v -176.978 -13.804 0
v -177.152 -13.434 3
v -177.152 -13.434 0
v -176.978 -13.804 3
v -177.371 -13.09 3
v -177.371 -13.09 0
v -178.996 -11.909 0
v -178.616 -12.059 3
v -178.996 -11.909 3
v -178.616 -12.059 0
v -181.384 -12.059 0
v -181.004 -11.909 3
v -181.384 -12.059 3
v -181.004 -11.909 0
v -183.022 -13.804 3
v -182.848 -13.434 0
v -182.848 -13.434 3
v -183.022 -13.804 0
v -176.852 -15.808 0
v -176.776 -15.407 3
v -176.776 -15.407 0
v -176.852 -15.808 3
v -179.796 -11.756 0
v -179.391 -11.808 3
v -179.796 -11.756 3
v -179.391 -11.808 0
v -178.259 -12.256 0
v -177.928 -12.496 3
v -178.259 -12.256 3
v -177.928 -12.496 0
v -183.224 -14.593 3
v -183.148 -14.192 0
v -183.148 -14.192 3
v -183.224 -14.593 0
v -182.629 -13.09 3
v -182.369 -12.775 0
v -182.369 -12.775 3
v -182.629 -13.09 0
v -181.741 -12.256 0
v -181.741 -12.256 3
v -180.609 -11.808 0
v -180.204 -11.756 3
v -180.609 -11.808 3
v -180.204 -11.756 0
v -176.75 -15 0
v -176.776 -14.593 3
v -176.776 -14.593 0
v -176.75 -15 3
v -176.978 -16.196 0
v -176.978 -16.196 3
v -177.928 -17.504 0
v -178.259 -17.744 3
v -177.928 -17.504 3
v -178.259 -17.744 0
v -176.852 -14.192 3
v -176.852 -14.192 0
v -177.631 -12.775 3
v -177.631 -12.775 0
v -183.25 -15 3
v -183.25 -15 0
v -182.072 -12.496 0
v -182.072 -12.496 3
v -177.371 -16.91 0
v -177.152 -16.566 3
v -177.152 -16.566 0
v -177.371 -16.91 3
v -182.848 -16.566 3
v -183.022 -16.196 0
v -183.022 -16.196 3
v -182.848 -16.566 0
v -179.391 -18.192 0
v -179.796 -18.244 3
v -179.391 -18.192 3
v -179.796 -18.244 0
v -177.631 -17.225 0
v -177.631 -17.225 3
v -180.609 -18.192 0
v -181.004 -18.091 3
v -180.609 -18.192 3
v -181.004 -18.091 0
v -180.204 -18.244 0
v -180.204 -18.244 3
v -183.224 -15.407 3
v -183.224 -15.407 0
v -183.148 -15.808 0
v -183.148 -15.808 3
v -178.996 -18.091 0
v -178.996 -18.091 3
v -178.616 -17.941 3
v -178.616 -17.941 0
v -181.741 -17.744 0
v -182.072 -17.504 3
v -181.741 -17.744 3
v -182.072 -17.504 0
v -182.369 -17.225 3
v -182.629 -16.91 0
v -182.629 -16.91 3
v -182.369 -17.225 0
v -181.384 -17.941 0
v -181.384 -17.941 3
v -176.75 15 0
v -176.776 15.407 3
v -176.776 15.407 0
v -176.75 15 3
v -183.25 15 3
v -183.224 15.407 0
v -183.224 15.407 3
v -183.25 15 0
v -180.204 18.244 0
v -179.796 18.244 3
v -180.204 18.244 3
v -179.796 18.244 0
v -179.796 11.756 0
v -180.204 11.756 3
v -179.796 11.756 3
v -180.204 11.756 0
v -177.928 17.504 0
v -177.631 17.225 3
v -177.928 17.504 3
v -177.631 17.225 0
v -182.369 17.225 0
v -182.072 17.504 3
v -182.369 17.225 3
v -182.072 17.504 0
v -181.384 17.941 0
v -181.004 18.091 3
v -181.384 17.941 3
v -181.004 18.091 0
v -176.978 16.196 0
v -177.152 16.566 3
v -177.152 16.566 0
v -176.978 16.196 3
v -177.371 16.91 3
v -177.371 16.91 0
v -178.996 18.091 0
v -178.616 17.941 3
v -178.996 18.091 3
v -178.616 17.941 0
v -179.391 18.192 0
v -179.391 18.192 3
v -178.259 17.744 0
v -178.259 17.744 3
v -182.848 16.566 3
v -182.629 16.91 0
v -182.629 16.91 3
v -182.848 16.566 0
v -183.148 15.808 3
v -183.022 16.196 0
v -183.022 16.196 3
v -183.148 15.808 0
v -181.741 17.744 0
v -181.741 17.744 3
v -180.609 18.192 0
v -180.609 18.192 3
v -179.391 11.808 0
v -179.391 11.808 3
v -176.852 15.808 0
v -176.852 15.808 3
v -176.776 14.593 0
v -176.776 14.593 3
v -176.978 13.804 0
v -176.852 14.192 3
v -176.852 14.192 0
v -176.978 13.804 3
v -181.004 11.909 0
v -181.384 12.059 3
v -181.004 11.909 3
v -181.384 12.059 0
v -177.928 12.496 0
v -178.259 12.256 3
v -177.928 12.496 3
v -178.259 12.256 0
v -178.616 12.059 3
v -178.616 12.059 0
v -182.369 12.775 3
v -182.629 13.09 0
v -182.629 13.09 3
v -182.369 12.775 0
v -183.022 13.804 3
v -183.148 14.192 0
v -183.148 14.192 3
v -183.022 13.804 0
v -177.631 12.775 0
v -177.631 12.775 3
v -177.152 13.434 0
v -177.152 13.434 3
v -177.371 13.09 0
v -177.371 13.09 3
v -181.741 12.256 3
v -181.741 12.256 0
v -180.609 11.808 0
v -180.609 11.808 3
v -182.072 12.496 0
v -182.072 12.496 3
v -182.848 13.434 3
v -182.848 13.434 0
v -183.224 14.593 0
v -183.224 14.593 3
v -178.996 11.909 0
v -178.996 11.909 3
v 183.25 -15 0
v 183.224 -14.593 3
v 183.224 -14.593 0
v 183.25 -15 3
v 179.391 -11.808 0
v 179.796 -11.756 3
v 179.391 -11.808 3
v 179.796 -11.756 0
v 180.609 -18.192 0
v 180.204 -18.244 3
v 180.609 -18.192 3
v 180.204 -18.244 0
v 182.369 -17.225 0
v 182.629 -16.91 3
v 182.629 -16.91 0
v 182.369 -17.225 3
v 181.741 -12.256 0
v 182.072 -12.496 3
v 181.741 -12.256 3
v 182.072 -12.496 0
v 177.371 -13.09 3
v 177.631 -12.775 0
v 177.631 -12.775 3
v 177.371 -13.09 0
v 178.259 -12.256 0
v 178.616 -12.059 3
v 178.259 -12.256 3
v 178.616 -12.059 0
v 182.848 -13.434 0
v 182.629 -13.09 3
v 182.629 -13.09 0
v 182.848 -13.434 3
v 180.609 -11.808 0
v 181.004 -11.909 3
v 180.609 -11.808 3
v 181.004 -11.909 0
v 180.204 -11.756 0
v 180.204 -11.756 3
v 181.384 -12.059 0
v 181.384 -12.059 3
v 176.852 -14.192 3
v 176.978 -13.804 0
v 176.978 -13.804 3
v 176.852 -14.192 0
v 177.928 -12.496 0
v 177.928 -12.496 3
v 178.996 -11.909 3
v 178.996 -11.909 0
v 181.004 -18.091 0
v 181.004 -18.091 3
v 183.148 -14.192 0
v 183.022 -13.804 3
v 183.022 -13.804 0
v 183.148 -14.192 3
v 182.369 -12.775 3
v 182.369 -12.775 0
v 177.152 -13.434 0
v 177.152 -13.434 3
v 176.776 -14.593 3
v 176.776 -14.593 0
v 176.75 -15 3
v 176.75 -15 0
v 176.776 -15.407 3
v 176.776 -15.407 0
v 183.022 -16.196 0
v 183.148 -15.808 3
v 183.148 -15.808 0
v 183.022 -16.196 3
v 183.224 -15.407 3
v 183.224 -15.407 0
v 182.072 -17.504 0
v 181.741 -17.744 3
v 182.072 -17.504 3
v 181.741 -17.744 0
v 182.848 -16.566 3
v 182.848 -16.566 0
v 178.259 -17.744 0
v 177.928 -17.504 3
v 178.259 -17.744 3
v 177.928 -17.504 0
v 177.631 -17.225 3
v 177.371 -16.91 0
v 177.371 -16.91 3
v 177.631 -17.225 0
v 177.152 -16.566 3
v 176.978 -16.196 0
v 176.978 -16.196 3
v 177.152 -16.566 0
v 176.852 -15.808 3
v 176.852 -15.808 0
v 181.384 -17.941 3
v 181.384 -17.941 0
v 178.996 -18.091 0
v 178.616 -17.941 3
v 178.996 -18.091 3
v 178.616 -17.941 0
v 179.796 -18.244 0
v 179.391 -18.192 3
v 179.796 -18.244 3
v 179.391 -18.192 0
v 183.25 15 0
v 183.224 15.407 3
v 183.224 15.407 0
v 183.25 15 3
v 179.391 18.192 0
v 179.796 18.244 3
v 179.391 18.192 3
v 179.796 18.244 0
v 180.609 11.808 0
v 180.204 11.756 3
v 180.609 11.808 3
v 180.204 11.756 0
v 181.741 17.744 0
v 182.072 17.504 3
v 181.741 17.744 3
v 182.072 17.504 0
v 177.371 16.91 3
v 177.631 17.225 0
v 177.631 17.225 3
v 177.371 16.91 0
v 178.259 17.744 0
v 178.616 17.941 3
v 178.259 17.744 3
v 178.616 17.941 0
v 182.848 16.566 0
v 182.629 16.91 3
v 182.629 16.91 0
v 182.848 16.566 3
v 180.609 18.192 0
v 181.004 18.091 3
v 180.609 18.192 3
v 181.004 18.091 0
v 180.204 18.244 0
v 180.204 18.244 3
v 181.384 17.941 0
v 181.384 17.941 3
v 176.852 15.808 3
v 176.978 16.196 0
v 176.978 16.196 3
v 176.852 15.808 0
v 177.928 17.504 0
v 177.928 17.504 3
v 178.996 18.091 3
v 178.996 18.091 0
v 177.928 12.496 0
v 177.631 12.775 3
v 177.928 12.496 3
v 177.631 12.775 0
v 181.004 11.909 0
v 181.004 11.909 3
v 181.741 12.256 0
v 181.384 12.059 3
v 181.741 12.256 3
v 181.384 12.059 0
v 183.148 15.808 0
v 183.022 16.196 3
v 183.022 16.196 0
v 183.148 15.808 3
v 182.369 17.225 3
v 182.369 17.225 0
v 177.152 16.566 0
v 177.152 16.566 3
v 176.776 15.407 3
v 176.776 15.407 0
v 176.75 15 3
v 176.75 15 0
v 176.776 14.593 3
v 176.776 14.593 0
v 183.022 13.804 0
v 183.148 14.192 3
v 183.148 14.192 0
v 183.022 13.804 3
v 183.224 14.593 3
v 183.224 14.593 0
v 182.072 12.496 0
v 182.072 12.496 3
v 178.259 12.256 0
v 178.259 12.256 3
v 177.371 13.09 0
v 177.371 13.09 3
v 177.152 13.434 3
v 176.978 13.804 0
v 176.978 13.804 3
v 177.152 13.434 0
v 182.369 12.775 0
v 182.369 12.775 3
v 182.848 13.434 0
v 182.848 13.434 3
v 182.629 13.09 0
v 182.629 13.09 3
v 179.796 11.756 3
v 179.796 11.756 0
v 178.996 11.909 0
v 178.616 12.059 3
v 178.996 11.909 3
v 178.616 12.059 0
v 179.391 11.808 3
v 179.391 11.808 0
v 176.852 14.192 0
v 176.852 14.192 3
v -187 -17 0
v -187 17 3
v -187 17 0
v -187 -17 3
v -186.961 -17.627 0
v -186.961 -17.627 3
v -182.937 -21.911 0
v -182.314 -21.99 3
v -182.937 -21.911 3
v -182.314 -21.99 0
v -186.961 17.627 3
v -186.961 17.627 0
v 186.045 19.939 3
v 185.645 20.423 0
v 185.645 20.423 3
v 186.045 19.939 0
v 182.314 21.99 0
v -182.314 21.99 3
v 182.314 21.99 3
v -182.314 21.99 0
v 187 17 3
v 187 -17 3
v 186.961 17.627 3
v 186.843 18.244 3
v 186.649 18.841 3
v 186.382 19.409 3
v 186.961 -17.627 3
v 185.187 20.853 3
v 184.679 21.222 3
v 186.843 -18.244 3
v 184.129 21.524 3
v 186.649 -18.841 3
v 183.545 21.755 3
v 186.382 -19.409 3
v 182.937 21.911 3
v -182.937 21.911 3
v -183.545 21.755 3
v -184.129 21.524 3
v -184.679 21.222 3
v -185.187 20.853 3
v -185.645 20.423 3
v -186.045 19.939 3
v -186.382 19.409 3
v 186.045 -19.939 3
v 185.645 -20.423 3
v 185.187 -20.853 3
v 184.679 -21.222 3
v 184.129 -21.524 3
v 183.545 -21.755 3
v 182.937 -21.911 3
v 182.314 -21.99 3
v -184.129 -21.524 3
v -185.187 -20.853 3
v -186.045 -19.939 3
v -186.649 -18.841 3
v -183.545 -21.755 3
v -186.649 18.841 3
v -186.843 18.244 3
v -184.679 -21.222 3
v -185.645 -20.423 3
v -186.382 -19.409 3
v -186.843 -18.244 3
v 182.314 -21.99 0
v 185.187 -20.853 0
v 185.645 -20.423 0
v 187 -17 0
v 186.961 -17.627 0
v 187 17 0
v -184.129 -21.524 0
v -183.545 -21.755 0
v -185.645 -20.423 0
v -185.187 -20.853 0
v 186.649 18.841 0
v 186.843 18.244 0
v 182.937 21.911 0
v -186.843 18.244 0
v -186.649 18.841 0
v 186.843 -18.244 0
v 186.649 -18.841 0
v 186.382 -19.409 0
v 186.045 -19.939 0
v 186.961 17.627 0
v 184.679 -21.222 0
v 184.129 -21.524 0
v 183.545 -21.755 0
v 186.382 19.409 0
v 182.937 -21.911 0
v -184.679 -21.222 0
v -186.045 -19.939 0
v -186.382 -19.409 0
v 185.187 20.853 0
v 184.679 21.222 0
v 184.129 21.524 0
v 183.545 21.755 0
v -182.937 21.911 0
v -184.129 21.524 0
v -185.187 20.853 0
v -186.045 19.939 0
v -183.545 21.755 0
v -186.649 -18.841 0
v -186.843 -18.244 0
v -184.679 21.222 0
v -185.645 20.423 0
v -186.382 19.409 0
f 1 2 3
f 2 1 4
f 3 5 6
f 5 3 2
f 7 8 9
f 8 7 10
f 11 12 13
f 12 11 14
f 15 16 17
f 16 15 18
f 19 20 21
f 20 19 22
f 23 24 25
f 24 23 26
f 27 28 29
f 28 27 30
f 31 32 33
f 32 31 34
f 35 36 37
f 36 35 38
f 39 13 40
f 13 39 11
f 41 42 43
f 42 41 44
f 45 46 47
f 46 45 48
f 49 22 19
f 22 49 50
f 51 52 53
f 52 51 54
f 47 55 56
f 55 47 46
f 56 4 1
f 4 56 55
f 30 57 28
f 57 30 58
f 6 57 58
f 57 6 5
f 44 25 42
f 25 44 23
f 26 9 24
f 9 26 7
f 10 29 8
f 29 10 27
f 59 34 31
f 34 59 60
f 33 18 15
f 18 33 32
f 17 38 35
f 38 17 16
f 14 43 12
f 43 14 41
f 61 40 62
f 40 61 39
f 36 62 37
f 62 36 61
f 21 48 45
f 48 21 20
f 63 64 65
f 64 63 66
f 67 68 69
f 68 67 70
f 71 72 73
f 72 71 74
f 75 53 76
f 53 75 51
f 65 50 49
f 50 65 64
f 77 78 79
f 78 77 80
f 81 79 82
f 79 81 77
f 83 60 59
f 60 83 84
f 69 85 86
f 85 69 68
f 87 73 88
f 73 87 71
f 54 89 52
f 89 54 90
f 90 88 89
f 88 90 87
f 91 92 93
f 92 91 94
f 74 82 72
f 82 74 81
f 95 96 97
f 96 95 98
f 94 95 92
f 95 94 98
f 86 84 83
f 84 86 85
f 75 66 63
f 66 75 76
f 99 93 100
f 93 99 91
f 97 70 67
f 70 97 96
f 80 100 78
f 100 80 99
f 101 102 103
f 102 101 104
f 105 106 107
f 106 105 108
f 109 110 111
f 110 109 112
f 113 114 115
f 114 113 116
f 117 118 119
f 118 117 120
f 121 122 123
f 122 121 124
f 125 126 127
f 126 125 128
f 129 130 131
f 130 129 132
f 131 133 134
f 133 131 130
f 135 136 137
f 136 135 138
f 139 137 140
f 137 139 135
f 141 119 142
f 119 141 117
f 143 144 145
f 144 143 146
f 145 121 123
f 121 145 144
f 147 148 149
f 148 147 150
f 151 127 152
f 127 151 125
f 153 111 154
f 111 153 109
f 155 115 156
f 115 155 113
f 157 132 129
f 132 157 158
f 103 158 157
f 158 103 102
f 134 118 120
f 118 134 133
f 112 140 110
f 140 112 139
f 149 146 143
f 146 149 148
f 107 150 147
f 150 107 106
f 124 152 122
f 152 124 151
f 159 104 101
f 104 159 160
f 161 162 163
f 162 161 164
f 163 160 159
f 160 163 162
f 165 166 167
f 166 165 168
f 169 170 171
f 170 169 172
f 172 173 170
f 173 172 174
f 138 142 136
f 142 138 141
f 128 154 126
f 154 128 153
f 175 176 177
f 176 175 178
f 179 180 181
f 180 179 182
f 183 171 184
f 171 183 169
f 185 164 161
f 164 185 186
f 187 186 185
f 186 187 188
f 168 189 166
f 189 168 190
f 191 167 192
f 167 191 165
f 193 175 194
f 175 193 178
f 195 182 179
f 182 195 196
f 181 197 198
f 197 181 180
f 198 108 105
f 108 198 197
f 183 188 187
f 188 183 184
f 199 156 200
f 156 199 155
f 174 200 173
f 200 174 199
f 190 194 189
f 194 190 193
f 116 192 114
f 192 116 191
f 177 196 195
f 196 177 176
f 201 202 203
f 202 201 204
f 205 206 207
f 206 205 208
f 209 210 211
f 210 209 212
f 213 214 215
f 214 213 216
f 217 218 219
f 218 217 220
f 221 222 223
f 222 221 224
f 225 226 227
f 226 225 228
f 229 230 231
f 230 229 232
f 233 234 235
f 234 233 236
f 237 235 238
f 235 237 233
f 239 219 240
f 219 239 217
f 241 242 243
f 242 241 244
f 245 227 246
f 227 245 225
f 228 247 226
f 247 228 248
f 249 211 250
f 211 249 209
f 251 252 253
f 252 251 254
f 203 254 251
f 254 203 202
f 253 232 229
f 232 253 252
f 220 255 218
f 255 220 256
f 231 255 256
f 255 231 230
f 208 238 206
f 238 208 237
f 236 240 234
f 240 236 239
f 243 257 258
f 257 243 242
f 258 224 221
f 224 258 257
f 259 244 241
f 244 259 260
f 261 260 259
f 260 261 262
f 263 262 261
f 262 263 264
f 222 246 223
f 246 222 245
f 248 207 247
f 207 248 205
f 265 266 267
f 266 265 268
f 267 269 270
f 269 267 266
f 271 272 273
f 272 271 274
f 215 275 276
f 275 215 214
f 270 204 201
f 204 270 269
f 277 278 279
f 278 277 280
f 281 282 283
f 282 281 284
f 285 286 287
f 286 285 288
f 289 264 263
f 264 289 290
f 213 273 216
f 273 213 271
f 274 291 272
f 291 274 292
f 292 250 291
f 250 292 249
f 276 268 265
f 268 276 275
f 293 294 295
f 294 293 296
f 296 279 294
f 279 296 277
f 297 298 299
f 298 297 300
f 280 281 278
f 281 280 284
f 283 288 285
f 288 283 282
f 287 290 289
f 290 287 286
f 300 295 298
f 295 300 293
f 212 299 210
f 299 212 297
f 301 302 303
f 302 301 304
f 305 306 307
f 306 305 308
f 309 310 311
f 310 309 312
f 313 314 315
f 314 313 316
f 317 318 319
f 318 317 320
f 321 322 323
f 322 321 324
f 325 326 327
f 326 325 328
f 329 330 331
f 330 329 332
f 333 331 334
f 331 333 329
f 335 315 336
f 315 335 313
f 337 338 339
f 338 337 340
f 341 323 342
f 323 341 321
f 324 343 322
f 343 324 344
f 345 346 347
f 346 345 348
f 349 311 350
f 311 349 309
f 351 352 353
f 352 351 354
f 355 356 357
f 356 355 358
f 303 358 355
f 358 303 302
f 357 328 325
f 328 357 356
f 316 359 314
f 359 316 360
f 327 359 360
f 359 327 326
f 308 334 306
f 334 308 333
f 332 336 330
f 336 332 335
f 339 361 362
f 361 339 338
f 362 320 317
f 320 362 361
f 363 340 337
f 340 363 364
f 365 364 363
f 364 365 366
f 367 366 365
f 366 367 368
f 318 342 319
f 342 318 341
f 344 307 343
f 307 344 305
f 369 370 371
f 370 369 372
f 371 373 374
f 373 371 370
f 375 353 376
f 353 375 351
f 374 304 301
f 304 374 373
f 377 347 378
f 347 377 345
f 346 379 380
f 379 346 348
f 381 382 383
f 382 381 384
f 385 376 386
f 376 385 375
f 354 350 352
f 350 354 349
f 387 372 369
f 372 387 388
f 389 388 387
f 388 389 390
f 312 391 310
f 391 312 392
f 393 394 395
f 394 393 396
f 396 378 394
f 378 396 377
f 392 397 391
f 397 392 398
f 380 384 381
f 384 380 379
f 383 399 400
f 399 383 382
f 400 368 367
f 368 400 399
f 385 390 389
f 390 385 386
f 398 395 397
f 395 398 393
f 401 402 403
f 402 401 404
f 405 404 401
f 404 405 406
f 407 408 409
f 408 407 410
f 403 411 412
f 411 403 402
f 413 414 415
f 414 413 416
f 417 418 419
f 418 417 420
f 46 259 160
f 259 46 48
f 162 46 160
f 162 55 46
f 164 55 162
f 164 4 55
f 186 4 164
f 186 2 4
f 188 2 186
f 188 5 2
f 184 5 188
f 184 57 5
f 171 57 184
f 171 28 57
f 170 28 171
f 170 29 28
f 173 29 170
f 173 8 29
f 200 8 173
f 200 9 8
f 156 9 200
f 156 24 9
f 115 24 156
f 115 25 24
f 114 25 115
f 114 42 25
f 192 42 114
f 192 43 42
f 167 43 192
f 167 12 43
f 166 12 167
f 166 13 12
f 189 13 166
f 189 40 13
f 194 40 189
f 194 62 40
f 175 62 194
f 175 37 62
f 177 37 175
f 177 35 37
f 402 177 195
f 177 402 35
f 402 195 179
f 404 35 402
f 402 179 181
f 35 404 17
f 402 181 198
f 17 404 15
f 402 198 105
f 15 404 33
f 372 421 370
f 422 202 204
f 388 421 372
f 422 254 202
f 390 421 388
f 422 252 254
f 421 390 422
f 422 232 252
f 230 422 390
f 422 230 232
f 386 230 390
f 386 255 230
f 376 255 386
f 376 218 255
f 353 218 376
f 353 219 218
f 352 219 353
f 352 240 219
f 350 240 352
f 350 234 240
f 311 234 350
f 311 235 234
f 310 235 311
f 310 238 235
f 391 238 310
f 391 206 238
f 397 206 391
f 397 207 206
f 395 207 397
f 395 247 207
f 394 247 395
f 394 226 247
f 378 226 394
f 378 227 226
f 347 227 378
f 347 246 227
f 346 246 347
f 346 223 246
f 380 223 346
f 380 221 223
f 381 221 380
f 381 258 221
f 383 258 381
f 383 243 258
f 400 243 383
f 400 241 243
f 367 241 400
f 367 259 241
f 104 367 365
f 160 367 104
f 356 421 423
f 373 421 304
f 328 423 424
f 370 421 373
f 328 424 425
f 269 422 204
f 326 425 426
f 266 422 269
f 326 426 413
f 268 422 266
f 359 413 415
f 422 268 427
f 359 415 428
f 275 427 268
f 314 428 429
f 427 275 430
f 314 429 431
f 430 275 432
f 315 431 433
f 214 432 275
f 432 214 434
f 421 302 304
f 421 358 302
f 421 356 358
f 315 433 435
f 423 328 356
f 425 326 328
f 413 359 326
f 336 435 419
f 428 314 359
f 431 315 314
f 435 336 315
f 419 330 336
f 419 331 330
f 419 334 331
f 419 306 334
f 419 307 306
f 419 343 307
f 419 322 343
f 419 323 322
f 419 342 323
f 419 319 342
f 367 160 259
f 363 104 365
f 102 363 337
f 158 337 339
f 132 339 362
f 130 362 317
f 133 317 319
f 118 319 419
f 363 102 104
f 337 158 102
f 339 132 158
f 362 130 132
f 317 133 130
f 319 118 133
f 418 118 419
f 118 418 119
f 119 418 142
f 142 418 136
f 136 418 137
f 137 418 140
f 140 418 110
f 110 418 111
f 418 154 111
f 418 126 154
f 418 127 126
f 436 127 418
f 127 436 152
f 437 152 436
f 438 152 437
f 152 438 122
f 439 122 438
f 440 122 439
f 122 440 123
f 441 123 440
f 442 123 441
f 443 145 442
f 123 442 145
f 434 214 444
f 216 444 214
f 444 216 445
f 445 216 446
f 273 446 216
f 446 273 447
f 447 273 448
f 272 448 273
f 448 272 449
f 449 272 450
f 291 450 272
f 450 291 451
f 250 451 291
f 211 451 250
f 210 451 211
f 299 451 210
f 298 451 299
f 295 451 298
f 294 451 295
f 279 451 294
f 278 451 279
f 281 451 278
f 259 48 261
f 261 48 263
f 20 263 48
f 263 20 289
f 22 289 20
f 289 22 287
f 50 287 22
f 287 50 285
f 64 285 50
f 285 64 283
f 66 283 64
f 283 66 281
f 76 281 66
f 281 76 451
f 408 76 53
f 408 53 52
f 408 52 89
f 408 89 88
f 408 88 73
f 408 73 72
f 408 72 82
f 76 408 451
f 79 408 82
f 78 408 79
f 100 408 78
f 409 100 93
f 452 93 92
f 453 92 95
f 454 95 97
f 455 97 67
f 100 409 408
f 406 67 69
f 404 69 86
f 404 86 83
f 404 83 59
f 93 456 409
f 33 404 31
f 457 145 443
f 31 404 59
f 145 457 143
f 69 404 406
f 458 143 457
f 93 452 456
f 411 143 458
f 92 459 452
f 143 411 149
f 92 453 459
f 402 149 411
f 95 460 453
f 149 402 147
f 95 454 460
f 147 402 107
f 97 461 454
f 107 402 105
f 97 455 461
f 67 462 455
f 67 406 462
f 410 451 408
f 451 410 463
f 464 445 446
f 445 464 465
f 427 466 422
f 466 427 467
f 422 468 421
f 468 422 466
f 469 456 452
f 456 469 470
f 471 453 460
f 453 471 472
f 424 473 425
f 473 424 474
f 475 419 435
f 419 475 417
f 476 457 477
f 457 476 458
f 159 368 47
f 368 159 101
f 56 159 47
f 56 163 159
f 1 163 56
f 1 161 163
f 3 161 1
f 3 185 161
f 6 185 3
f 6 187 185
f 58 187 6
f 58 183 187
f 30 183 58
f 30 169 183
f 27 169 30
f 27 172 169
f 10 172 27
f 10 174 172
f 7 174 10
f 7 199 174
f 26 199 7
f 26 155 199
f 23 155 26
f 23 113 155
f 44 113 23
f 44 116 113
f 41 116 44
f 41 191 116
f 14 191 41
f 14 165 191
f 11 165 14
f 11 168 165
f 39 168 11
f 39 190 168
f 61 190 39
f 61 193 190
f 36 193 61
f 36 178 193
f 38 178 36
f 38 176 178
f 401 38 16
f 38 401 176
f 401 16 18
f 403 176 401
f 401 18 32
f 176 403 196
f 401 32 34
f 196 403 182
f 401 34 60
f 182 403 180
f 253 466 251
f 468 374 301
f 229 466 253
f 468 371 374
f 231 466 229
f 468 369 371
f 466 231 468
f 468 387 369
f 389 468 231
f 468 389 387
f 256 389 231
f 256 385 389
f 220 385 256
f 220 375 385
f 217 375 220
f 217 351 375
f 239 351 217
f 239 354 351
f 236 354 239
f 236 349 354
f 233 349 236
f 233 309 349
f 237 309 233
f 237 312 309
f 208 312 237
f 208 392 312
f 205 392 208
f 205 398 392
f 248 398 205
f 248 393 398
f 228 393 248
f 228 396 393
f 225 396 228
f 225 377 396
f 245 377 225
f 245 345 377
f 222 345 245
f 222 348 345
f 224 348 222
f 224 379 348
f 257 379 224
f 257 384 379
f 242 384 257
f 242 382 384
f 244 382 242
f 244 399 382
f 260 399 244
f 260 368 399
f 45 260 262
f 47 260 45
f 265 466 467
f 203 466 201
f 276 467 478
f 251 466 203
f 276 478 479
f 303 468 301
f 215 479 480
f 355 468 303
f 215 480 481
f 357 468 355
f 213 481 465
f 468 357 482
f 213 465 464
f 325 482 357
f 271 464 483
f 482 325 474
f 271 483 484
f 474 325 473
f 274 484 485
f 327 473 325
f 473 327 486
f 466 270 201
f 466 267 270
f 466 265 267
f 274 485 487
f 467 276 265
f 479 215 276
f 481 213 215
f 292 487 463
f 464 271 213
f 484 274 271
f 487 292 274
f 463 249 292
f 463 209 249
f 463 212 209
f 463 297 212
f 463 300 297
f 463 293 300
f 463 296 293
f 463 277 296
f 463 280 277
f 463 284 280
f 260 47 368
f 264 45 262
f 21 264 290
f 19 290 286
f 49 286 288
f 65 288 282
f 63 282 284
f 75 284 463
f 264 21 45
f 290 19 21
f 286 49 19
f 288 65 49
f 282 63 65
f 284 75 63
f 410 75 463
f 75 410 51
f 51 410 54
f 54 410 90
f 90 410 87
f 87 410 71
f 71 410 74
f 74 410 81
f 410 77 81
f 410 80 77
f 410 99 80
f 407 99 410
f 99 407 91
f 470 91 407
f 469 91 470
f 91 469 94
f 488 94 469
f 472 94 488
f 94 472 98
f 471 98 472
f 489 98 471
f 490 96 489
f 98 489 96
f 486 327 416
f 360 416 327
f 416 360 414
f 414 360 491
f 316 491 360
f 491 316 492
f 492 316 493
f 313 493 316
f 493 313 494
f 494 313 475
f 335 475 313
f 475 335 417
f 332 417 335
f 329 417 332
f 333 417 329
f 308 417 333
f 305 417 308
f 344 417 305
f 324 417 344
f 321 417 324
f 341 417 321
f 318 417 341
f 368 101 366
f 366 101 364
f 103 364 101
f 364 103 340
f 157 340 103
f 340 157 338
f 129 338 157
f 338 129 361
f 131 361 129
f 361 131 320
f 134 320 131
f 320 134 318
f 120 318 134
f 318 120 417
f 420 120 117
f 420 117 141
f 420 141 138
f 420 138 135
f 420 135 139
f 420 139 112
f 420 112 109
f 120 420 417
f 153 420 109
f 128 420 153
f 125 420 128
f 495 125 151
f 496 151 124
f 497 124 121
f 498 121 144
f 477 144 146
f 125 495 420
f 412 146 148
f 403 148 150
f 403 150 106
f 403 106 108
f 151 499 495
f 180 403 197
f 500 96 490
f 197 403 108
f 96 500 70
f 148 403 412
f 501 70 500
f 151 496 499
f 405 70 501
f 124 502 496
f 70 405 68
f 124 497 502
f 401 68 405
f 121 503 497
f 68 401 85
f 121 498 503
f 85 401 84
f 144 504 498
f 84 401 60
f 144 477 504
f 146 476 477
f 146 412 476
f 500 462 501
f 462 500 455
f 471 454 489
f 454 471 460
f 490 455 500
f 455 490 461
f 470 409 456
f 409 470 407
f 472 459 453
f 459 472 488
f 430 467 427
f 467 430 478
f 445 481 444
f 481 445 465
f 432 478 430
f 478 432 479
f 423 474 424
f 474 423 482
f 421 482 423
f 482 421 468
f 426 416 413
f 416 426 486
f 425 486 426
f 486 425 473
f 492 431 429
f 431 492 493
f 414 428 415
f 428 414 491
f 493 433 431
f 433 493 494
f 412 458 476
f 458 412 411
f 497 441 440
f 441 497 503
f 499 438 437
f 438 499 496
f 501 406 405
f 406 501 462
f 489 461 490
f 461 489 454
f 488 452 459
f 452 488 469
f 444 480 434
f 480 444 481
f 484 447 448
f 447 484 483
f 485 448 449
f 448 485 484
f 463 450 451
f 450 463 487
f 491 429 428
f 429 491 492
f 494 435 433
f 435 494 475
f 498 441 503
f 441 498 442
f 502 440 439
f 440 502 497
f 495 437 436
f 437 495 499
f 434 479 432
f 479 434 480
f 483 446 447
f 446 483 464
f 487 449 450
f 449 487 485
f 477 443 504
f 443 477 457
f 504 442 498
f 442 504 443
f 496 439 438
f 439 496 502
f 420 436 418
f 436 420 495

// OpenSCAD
$fn = 50;


difference() {
	union() {
		hull() {
			translate(v = [-182.0000000000, 17.0000000000, 0]) {
				cylinder(h = 3, r = 5);
			}
			translate(v = [182.0000000000, 17.0000000000, 0]) {
				cylinder(h = 3, r = 5);
			}
			translate(v = [-182.0000000000, -17.0000000000, 0]) {
				cylinder(h = 3, r = 5);
			}
			translate(v = [182.0000000000, -17.0000000000, 0]) {
				cylinder(h = 3, r = 5);
			}
		}
	}
	union() {
		translate(v = [-180.0000000000, -15.0000000000, -100.0000000000]) {
			cylinder(h = 200, r = 3.2500000000);
		}
		translate(v = [-180.0000000000, 15.0000000000, -100.0000000000]) {
			cylinder(h = 200, r = 3.2500000000);
		}
		translate(v = [180.0000000000, -15.0000000000, -100.0000000000]) {
			cylinder(h = 200, r = 3.2500000000);
		}
		translate(v = [180.0000000000, 15.0000000000, -100.0000000000]) {
			cylinder(h = 200, r = 3.2500000000);
		}
	}
}
